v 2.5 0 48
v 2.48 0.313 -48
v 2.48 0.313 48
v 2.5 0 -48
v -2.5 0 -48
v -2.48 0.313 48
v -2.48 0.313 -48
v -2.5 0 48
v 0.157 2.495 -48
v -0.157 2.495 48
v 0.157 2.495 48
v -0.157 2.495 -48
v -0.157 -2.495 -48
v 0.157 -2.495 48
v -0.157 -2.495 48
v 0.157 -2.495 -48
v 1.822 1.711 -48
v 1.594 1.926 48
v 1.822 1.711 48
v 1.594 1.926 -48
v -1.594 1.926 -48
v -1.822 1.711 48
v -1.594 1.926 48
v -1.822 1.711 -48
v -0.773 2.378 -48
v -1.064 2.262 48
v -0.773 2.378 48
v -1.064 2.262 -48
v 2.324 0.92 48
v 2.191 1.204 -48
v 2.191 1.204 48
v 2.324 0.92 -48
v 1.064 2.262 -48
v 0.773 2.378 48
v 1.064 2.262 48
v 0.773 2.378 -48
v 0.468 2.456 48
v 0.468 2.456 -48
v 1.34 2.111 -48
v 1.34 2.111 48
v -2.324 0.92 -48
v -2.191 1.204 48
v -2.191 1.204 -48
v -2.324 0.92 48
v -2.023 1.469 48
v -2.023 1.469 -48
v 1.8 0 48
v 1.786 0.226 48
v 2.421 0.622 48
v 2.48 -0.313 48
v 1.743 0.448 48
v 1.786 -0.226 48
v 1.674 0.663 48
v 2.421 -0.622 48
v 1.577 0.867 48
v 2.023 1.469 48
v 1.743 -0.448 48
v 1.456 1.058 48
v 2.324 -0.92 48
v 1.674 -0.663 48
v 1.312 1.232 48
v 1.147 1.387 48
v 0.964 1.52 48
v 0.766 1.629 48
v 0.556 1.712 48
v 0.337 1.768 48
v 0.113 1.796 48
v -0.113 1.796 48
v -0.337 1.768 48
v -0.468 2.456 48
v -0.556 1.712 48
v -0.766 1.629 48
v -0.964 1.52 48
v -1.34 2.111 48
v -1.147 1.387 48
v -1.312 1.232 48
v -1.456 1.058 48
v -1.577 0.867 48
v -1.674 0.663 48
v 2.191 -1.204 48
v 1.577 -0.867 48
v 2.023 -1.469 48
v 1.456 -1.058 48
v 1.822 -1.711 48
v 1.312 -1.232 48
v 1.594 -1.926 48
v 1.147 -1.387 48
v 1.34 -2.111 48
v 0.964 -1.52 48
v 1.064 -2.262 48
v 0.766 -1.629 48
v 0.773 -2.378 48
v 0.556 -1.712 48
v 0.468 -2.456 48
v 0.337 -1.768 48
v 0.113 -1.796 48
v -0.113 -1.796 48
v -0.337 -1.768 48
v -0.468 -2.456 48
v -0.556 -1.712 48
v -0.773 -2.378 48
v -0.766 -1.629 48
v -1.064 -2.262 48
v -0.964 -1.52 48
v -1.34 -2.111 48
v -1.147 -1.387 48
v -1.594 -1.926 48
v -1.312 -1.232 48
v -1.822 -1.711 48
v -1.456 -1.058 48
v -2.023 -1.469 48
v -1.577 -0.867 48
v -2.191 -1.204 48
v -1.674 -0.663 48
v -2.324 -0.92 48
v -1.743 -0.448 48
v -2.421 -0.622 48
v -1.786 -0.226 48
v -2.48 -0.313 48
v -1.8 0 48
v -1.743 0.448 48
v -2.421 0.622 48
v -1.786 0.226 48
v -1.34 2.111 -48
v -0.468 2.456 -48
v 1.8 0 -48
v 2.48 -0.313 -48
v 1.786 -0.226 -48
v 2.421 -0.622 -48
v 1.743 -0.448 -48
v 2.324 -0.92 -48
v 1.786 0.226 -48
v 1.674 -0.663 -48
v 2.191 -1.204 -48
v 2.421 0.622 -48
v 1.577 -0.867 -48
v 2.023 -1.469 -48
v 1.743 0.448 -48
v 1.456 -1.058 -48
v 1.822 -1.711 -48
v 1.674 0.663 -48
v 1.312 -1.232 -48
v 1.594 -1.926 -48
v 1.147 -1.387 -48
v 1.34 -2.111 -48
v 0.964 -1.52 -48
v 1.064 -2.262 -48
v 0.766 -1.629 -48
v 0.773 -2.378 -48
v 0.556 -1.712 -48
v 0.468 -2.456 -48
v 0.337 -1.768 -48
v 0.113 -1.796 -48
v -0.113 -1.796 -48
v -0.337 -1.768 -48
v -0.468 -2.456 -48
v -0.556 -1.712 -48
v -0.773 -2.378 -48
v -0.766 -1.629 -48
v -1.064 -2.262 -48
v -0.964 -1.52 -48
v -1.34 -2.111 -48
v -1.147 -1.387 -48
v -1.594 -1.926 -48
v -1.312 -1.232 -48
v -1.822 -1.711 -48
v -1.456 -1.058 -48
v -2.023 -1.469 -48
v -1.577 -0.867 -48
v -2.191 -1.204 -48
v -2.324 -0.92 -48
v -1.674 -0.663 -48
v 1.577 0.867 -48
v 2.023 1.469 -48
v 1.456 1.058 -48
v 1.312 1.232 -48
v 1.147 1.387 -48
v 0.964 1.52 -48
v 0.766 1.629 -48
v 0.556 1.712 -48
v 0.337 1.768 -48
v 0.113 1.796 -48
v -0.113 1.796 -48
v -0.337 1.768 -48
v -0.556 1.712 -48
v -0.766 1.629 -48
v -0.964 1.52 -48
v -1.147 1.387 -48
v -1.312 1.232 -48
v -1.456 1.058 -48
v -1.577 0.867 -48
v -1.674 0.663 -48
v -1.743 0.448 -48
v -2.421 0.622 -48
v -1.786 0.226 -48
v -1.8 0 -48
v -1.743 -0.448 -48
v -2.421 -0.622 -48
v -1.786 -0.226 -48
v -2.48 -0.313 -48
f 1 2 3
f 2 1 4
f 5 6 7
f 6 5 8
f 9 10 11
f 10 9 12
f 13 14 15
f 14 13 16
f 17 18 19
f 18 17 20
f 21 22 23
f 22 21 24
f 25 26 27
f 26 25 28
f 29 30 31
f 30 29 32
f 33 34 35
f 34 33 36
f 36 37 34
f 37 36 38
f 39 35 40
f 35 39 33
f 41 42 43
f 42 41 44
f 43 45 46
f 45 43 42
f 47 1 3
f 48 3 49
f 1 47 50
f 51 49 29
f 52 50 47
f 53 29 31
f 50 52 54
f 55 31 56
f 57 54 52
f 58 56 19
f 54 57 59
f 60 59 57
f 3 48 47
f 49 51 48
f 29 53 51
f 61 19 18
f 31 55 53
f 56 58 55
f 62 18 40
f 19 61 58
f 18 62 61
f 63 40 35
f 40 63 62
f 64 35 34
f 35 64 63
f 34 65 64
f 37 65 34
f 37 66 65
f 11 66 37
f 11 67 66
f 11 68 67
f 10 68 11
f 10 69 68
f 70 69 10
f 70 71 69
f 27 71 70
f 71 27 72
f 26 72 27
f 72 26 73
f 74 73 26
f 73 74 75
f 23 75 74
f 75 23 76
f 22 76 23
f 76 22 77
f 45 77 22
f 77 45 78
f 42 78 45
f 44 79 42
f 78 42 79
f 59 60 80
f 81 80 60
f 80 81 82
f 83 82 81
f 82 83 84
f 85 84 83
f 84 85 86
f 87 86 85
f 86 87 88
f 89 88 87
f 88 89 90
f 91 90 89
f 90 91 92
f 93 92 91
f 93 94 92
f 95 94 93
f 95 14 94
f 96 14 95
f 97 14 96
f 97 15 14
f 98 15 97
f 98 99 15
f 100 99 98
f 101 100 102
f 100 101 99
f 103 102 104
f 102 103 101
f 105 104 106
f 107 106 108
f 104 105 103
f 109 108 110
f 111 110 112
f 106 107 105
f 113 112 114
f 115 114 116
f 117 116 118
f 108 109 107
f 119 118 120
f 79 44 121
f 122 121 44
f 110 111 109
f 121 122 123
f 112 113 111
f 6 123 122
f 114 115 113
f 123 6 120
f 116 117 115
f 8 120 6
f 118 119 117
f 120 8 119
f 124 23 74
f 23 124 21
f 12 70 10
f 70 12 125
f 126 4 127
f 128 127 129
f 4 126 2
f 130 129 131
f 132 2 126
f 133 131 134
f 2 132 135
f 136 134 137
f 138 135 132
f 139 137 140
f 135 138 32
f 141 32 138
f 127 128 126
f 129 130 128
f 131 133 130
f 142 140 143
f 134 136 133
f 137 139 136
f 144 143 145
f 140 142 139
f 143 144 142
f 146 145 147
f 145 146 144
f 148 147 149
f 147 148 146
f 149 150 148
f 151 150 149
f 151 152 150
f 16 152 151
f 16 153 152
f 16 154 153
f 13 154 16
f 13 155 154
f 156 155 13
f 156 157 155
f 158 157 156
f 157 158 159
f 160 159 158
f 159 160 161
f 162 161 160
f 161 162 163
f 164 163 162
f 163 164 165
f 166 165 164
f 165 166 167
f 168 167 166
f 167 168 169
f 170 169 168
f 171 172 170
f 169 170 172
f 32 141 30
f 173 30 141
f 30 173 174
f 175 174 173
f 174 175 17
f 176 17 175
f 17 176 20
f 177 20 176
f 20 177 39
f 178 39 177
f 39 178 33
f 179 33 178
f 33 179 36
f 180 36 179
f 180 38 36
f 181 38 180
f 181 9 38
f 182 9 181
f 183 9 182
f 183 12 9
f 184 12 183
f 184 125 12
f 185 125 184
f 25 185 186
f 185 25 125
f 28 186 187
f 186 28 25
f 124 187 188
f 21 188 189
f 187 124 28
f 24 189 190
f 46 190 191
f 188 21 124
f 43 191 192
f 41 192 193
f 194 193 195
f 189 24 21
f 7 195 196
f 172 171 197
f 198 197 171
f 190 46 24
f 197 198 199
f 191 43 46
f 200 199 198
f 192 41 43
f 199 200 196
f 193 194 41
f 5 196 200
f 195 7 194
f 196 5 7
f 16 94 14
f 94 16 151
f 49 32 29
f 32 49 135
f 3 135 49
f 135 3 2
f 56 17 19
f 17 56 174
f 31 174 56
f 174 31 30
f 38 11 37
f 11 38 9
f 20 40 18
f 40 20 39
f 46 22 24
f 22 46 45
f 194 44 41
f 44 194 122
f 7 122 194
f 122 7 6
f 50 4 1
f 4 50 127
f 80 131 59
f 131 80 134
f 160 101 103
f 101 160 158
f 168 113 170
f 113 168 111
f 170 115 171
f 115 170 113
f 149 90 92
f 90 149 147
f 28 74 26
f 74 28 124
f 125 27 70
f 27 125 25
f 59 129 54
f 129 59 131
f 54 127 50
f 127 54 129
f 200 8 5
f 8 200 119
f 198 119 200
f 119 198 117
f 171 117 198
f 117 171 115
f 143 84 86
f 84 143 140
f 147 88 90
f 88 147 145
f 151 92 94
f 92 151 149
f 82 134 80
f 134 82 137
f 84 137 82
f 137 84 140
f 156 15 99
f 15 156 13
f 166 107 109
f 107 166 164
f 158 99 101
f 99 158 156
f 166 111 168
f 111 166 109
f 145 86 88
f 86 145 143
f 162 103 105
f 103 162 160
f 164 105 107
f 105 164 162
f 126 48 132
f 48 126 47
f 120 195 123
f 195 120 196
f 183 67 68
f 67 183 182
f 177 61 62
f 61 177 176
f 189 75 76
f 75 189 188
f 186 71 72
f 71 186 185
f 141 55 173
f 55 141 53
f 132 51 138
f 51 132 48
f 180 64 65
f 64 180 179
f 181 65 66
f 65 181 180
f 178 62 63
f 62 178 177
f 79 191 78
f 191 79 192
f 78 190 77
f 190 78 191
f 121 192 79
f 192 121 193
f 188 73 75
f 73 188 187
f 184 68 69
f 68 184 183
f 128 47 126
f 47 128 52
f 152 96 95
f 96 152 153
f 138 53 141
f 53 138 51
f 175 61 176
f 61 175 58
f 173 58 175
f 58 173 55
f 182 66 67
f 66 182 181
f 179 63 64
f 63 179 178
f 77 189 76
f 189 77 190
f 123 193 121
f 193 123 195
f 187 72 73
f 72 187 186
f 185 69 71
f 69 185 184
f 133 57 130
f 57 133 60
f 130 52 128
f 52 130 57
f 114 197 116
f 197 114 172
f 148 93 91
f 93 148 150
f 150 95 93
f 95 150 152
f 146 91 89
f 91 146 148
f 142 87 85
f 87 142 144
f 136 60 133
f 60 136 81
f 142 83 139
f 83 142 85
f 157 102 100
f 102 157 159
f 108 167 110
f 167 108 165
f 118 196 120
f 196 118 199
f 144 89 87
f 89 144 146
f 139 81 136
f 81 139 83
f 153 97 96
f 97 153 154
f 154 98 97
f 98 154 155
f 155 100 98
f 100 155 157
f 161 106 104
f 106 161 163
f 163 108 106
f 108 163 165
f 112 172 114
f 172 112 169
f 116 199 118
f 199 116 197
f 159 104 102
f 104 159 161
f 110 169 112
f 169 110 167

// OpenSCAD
$fn = 50;


difference() {
	union() {
		translate(v = [0, 0, -48.0000000000]) {
			cylinder(h = 96, r = 2.5000000000);
		}
	}
	union() {
		translate(v = [0, 0, -100.0000000000]) {
			cylinder(h = 200, r = 1.8000000000);
		}
	}
}
